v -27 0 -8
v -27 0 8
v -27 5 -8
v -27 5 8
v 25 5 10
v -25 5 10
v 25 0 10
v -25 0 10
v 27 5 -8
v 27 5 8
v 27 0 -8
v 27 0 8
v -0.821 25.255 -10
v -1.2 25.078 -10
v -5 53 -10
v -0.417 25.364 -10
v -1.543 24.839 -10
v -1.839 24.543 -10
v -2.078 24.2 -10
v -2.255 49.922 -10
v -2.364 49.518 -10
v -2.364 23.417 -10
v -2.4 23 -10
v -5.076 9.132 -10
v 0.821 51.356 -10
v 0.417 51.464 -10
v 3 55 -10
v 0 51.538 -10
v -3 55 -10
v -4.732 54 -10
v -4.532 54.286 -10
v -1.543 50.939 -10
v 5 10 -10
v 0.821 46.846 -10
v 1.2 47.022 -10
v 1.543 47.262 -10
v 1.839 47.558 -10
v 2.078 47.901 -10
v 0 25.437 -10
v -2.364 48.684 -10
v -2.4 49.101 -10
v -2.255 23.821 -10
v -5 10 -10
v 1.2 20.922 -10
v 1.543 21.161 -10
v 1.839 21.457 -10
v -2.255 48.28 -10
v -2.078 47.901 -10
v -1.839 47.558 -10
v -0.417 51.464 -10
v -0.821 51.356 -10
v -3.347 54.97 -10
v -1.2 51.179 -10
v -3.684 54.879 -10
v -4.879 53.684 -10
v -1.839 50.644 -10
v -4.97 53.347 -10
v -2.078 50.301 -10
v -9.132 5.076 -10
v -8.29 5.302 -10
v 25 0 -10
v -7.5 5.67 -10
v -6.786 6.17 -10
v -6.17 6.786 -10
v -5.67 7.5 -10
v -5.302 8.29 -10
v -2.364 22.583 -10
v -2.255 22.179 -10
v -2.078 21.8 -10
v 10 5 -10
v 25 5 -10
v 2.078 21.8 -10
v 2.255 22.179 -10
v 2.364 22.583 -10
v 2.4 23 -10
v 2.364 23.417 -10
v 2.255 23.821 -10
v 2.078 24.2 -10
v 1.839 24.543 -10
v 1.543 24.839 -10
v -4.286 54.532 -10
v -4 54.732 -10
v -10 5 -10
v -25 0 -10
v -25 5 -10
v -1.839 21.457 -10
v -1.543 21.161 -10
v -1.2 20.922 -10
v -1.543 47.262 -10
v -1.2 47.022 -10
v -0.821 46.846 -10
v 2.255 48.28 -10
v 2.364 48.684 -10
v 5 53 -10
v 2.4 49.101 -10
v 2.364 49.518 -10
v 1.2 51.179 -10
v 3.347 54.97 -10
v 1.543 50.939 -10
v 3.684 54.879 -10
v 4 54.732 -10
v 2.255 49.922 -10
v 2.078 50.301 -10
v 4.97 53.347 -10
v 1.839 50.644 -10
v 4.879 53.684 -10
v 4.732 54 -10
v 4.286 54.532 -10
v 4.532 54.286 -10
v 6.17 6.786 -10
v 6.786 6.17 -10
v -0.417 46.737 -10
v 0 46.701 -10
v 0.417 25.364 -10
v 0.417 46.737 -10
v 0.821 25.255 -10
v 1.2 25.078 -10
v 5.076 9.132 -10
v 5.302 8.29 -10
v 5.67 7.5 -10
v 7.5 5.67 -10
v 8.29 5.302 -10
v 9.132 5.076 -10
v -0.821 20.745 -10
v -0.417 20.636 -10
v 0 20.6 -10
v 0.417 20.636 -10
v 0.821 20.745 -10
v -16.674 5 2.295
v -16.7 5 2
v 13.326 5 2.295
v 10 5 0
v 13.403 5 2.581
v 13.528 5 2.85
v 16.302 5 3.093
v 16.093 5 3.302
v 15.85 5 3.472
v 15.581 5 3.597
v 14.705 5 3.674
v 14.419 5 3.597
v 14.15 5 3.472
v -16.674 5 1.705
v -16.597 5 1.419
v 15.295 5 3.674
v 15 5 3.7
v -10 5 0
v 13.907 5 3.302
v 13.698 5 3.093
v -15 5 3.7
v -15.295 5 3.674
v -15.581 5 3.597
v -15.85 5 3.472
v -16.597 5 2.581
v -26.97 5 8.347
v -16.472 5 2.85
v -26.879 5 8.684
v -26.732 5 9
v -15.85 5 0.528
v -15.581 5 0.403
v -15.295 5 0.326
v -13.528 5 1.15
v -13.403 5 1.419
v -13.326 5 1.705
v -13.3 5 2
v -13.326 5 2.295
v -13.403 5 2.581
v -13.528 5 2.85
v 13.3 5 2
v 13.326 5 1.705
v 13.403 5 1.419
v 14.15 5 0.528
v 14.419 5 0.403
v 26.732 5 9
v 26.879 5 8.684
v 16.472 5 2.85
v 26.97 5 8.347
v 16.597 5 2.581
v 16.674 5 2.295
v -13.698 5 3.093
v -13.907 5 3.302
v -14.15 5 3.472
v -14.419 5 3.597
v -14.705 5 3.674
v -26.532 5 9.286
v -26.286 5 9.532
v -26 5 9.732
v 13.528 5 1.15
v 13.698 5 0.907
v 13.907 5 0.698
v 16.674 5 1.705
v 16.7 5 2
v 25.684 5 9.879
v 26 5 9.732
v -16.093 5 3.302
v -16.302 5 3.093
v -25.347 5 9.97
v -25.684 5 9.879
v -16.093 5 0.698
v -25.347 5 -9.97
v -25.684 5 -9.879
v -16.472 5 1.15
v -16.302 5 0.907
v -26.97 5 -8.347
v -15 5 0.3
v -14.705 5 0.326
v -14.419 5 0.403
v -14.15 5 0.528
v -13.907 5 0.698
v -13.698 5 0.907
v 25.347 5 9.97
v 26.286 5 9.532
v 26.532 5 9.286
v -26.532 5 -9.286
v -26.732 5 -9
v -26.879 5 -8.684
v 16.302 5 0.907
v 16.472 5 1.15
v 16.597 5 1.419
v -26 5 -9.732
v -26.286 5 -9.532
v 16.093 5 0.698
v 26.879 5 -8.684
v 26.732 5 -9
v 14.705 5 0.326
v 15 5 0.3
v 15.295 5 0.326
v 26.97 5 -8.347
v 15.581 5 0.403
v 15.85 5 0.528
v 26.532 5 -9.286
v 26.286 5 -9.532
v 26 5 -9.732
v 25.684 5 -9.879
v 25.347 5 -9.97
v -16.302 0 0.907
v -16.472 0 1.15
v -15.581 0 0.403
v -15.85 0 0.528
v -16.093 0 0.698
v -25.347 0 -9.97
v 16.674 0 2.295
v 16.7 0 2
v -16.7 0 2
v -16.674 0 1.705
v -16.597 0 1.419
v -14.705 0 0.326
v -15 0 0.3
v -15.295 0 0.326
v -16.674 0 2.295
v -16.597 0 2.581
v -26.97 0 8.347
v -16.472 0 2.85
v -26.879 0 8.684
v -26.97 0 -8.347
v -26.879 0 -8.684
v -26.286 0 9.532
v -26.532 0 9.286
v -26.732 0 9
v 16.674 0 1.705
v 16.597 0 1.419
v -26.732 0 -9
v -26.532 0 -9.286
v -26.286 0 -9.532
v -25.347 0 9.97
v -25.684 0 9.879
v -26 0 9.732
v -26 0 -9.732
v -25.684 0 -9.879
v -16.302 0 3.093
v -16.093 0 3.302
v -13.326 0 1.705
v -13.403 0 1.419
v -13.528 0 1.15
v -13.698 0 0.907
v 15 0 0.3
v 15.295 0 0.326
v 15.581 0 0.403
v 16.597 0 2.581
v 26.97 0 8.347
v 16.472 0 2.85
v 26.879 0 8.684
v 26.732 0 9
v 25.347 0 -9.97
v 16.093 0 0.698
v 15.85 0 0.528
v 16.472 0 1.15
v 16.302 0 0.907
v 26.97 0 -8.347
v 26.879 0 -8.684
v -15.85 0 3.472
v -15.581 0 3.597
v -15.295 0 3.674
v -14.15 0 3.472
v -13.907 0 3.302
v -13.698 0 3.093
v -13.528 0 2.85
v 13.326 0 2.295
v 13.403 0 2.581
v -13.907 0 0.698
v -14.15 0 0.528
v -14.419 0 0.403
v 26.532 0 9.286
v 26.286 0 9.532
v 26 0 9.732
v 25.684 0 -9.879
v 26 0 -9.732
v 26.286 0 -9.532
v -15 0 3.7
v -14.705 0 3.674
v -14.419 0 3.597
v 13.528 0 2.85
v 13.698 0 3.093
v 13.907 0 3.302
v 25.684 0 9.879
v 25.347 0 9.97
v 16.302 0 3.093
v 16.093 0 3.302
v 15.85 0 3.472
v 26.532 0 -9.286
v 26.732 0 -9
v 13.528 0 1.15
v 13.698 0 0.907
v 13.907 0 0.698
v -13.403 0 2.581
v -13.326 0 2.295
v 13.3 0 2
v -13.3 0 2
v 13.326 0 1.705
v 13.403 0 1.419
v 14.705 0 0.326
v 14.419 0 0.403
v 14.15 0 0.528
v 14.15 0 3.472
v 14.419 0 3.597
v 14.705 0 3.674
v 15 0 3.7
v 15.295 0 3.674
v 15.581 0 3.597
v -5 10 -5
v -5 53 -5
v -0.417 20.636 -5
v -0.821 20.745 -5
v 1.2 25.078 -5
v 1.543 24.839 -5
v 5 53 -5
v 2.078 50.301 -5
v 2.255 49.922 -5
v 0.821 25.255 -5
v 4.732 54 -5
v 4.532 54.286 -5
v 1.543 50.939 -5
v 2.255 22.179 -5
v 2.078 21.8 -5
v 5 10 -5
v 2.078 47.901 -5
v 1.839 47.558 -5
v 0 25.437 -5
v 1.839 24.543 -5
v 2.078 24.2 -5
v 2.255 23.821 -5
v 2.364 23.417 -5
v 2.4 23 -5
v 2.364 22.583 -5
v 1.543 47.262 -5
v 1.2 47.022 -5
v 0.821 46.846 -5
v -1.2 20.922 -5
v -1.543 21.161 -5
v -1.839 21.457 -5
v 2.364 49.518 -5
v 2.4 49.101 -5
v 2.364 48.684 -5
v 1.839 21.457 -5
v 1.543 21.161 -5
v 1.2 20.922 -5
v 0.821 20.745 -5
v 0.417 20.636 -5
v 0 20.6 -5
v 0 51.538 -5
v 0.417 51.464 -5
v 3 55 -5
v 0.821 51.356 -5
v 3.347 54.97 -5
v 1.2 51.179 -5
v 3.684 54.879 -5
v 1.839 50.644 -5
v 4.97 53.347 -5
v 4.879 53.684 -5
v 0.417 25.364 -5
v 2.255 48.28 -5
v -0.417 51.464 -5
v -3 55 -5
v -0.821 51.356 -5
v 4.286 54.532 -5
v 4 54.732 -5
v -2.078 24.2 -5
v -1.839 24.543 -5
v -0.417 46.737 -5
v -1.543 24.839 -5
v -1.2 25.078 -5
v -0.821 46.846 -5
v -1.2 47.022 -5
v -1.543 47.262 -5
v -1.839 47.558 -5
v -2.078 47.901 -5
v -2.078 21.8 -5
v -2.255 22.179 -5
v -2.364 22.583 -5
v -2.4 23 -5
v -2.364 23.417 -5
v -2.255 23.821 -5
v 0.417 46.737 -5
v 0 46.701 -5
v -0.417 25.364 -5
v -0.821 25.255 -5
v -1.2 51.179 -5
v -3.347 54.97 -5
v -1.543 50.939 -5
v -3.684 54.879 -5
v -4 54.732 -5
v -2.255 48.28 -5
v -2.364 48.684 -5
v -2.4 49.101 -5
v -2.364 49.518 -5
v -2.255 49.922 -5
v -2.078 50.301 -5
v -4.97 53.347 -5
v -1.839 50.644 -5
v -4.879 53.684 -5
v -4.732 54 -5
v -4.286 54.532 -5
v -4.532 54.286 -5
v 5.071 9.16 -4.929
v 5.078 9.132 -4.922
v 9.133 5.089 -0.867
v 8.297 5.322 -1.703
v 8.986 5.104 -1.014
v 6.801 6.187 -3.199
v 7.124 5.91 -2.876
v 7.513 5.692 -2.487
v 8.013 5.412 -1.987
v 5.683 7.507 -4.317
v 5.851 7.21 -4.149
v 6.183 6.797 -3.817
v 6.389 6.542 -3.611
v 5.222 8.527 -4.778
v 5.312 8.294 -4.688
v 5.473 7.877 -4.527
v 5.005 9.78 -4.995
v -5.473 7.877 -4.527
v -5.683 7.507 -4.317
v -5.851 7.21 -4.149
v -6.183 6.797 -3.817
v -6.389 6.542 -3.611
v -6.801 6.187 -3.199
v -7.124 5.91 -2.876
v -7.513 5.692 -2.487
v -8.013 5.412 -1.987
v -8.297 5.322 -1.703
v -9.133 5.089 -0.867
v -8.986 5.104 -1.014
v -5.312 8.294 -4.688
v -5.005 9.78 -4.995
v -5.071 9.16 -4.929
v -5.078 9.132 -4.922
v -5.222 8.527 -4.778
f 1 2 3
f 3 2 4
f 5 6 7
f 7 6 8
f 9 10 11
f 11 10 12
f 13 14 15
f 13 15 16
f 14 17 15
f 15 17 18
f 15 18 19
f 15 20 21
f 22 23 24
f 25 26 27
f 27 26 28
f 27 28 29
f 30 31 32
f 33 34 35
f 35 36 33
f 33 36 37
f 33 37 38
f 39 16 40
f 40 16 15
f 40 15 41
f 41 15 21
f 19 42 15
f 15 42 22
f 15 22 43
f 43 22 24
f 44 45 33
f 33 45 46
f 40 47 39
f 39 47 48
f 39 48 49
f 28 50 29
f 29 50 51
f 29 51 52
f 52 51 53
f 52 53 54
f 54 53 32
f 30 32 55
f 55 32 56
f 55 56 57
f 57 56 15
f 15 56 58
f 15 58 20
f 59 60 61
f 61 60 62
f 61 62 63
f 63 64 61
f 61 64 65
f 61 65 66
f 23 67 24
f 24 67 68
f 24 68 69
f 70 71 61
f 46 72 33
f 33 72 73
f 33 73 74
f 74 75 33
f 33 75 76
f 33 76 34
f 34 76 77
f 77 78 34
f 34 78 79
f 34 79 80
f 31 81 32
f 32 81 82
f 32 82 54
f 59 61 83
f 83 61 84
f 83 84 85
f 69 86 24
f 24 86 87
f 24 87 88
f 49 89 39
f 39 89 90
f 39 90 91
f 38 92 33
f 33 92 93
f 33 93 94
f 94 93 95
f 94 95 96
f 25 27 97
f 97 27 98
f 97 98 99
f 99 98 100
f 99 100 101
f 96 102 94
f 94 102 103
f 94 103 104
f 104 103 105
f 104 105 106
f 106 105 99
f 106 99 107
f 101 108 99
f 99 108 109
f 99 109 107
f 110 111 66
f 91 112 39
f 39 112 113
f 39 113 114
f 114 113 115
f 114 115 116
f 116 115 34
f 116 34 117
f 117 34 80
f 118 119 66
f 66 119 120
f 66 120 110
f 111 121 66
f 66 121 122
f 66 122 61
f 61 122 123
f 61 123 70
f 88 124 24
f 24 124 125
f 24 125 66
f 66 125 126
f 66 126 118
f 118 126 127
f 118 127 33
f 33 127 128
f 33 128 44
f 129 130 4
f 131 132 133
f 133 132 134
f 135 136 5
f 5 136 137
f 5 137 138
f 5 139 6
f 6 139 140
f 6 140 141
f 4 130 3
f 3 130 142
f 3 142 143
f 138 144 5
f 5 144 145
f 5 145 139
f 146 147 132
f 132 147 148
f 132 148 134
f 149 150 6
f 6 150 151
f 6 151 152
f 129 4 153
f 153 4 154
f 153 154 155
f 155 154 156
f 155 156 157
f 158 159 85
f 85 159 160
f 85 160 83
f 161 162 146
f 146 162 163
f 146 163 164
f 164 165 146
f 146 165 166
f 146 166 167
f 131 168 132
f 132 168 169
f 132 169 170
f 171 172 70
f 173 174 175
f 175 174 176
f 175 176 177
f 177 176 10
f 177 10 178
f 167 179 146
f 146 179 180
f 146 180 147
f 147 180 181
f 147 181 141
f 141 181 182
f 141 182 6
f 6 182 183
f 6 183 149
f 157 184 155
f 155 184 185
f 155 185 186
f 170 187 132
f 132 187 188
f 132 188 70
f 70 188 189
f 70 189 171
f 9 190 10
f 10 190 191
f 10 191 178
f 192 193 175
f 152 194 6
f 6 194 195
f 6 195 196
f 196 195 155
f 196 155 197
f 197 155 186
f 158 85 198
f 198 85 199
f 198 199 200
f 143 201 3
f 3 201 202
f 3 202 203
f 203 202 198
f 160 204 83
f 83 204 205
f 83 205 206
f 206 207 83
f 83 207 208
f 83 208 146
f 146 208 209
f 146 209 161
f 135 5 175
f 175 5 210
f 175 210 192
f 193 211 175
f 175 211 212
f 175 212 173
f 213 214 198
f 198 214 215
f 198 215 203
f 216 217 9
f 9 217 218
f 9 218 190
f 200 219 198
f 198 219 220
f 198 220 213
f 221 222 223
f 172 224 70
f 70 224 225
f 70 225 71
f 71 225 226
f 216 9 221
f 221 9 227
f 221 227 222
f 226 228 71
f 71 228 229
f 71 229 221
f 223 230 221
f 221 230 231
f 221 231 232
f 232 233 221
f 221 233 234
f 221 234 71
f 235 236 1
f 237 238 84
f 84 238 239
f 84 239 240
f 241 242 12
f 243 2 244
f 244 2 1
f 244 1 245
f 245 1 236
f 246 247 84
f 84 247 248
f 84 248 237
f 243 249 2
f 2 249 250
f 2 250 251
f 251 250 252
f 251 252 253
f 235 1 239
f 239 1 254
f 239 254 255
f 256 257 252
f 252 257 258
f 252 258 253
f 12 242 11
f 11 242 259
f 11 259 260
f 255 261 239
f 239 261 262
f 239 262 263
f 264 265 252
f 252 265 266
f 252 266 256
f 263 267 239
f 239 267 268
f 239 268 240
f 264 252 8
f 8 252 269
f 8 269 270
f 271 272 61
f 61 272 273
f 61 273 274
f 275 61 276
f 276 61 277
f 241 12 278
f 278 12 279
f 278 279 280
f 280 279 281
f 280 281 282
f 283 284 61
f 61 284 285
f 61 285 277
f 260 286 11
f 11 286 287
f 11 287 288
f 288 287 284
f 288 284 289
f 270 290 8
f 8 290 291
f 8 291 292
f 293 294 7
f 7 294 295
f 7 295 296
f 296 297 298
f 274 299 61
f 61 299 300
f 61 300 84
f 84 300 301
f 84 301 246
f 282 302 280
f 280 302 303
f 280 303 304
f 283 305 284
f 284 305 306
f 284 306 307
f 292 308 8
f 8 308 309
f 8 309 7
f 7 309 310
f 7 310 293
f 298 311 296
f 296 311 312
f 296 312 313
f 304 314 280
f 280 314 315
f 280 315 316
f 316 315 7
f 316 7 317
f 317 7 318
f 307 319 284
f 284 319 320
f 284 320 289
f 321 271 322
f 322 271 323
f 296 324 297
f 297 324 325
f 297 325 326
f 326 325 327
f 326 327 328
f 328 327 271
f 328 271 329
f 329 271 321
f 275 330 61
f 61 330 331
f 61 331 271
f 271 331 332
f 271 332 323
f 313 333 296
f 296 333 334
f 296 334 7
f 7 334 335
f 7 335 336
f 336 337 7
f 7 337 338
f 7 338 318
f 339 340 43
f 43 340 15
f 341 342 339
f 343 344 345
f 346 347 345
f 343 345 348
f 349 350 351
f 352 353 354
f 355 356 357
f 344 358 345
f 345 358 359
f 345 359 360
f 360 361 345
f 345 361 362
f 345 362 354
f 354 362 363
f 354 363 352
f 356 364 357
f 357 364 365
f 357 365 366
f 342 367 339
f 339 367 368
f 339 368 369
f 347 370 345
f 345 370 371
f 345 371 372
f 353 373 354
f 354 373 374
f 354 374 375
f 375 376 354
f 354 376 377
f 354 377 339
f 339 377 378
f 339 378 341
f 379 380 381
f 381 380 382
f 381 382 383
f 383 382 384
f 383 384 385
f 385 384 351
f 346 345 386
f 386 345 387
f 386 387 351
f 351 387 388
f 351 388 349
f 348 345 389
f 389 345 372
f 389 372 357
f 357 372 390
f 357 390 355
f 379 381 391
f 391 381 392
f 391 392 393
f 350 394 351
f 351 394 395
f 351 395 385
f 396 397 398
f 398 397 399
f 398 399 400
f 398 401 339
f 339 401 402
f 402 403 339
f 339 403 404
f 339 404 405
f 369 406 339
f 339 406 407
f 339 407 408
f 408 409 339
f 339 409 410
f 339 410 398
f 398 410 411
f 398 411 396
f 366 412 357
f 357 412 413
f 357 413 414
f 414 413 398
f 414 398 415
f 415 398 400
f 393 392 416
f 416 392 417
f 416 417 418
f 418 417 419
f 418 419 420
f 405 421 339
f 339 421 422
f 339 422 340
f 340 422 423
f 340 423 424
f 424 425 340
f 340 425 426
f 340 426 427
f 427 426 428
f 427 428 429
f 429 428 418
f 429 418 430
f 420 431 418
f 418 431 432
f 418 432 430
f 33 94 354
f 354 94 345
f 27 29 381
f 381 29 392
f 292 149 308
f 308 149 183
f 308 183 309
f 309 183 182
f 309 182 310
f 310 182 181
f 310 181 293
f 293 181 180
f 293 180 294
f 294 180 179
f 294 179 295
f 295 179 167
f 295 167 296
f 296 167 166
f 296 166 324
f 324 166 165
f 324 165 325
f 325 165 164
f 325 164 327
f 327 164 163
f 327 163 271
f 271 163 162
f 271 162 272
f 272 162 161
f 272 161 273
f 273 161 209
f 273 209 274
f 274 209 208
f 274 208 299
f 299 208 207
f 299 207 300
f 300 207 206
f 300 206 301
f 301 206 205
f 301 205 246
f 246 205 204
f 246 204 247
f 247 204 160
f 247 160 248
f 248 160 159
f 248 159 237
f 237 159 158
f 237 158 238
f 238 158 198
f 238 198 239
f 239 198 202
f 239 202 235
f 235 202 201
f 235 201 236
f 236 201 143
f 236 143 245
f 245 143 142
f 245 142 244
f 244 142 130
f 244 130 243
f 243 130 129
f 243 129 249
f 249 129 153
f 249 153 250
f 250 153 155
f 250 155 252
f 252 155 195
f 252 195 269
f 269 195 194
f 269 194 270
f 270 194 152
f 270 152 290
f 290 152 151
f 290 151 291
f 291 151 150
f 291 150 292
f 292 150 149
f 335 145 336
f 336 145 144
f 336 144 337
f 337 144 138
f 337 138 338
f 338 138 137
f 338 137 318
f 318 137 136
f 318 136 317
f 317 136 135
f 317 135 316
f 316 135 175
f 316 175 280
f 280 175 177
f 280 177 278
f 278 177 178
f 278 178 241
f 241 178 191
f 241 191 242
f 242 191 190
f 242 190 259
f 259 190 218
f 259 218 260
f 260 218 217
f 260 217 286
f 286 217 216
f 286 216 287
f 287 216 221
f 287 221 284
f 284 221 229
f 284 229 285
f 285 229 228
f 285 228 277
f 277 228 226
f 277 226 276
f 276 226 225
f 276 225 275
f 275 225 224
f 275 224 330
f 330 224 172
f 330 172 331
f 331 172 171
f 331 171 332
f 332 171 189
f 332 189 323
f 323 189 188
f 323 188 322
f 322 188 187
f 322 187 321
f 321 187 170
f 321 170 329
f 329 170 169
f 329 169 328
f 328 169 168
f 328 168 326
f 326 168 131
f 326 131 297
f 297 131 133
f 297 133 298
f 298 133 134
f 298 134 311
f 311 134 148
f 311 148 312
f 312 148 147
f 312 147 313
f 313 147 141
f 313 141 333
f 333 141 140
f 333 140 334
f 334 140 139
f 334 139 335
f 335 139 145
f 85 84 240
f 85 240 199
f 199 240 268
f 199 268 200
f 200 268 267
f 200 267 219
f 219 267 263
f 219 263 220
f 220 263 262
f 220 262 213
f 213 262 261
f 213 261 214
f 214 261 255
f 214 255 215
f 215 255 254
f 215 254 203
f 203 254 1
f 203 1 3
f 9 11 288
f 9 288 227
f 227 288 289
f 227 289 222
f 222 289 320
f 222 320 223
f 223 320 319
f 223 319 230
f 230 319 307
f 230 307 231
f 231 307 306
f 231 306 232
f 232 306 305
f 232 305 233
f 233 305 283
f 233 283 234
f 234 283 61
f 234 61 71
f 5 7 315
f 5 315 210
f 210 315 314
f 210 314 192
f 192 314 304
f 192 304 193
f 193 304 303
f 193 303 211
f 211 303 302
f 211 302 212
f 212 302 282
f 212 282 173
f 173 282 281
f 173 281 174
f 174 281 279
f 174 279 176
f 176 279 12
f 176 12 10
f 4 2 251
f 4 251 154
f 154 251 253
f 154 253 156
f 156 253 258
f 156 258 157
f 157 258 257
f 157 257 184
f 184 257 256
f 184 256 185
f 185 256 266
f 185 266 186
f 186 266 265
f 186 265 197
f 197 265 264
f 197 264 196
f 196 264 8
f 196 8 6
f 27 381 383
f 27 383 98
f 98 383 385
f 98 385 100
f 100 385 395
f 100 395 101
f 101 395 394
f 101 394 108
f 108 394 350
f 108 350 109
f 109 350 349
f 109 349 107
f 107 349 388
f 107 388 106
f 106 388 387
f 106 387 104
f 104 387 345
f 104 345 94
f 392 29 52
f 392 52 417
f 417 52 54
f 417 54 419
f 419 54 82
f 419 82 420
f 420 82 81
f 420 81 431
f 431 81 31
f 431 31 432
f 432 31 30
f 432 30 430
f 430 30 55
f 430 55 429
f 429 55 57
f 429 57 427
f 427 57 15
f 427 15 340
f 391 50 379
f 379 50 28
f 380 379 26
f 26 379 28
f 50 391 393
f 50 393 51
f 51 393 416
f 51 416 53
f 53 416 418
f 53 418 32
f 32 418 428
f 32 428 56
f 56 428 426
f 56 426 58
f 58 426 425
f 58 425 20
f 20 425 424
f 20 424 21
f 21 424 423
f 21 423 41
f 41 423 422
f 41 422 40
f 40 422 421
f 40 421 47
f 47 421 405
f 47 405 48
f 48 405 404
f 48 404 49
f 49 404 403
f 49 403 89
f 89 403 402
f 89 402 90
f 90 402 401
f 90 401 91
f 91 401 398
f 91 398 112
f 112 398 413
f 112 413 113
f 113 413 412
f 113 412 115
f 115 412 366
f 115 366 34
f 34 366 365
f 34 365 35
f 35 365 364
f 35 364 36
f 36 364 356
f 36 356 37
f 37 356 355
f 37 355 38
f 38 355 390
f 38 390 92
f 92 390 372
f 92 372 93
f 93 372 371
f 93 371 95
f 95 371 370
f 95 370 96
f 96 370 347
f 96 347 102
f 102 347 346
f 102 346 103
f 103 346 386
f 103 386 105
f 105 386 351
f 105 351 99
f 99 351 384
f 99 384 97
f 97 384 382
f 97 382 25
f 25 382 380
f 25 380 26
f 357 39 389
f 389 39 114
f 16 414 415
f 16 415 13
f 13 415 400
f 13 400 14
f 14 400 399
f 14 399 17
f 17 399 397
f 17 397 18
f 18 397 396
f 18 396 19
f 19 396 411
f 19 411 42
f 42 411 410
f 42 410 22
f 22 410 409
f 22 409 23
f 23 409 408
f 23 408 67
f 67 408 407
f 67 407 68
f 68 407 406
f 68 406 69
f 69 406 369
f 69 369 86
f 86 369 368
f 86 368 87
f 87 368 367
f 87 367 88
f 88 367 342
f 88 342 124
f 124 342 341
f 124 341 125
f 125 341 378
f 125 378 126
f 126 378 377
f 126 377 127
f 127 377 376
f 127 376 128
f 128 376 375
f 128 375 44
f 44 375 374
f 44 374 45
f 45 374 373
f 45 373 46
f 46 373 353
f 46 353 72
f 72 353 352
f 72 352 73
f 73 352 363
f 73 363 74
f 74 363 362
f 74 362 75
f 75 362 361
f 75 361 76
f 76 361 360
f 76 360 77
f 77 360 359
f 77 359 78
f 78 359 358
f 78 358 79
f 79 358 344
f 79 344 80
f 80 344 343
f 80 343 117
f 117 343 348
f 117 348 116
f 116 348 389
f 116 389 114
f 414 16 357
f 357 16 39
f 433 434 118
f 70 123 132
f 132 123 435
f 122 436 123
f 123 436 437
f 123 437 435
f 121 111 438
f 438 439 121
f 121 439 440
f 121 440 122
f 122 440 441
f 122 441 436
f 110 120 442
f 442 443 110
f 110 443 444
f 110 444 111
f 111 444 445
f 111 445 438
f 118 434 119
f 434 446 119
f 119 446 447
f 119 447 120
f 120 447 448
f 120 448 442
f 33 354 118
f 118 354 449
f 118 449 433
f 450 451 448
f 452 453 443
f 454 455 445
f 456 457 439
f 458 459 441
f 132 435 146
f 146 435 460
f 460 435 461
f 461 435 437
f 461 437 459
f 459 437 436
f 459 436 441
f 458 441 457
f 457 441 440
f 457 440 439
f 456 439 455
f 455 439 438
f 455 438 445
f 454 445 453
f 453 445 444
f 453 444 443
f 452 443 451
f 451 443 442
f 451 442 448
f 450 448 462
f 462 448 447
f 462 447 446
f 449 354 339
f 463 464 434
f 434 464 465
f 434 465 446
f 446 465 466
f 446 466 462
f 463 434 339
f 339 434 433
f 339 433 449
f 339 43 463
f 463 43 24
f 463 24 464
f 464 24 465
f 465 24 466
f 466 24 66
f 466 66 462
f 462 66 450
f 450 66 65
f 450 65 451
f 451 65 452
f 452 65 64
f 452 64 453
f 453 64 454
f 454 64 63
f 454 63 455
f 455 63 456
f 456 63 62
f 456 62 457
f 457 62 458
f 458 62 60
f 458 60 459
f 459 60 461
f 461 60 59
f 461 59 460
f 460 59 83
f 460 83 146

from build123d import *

# Parameters (mm, degrees)
SKETCH1_W               = 54
SKETCH1_H               = 20
BOSS_EXTRUDE1_DEPTH     = 5
BOSS_EXTRUDE2_OUTLINE_W = 10
BOSS_EXTRUDE2_OUTLINE_H = 5
BOSS_EXTRUDE2_DEPTH     = 50
M3_CLEARANCE_HOLE2_D    = 3.4
FILLET1_R               = 2
CUT_EXTRUDE6_DEPTH      = 13
CUT_EXTRUDE8_DEPTH      = 13
FILLET3_R               = 5


# Read off the part's stored shape, not the designer's step: Boss-Extrude2
with BuildPart() as part:
    # Sketch1 → Boss-Extrude1 (new body)
    with BuildSketch(Plane(origin=(0, 0, 0), x_dir=(1, 0, 0), z_dir=(0, 1, 0))):
        Rectangle(SKETCH1_W, SKETCH1_H)
    extrude(amount=BOSS_EXTRUDE1_DEPTH)

    # Boss-Extrude2 outline → Boss-Extrude2 (add)
    with BuildSketch(Plane(origin=(0, 5, 0), x_dir=(1, 0, 0), z_dir=(0, 1, 0))):
        with Locations((0, 7.5)):
            Rectangle(BOSS_EXTRUDE2_OUTLINE_W, BOSS_EXTRUDE2_OUTLINE_H)
    extrude(amount=BOSS_EXTRUDE2_DEPTH)

    # M3 Clearance Hole2 (through all)
    with Locations(Plane(origin=(0, 5, 0), x_dir=(1, 0, 0), z_dir=(0, 1, 0))):
        with Locations((15, -2), (-15, -2)):
            Hole(M3_CLEARANCE_HOLE2_D / 2)

    # Fillet1
    fillet1_edges = [part.edges().sort_by_distance(p)[0] for p in [
        (27, 2.5, 10),
        (-27, 2.5, 10),
        (5, 55, -7.5),
        (-5, 55, -7.5),
        (-27, 2.5, -10),
        (27, 2.5, -10),
    ]]
    fillet(fillet1_edges, radius=FILLET1_R)

    # Sketch16 → Cut-Extrude6 (cut)
    with BuildSketch(Plane.XY.offset(-5)):
        with BuildLine():
            Line((0, 51.537856262), (-0.416755626, 51.464371001))
            ThreePointArc((-0.416755626, 51.464371001), (0, 46.700832394), (0.416755626, 51.464371001))
            Line((0.416755626, 51.464371001), (0, 51.537856262))
        make_face()
    extrude(amount=-CUT_EXTRUDE6_DEPTH, mode=Mode.SUBTRACT)

    # Sketch17 → Cut-Extrude8 (cut)
    with BuildSketch(Plane.XY.offset(-5)):
        with BuildLine():
            Line((0, 25.437023869), (-0.416755626, 25.363538607))
            ThreePointArc((-0.416755626, 25.363538607), (0, 20.6), (0.416755626, 25.363538607))
            Line((0.416755626, 25.363538607), (0, 25.437023869))
        make_face()
    extrude(amount=-CUT_EXTRUDE8_DEPTH, mode=Mode.SUBTRACT)

    # Fillet3
    fillet3_edges = [part.edges().sort_by_distance(p)[0] for p in [
        (-5, 5, -7.5),
        (0, 5, -5),
        (5, 5, -7.5),
    ]]
    fillet(fillet3_edges, radius=FILLET3_R)


solid = part.part
